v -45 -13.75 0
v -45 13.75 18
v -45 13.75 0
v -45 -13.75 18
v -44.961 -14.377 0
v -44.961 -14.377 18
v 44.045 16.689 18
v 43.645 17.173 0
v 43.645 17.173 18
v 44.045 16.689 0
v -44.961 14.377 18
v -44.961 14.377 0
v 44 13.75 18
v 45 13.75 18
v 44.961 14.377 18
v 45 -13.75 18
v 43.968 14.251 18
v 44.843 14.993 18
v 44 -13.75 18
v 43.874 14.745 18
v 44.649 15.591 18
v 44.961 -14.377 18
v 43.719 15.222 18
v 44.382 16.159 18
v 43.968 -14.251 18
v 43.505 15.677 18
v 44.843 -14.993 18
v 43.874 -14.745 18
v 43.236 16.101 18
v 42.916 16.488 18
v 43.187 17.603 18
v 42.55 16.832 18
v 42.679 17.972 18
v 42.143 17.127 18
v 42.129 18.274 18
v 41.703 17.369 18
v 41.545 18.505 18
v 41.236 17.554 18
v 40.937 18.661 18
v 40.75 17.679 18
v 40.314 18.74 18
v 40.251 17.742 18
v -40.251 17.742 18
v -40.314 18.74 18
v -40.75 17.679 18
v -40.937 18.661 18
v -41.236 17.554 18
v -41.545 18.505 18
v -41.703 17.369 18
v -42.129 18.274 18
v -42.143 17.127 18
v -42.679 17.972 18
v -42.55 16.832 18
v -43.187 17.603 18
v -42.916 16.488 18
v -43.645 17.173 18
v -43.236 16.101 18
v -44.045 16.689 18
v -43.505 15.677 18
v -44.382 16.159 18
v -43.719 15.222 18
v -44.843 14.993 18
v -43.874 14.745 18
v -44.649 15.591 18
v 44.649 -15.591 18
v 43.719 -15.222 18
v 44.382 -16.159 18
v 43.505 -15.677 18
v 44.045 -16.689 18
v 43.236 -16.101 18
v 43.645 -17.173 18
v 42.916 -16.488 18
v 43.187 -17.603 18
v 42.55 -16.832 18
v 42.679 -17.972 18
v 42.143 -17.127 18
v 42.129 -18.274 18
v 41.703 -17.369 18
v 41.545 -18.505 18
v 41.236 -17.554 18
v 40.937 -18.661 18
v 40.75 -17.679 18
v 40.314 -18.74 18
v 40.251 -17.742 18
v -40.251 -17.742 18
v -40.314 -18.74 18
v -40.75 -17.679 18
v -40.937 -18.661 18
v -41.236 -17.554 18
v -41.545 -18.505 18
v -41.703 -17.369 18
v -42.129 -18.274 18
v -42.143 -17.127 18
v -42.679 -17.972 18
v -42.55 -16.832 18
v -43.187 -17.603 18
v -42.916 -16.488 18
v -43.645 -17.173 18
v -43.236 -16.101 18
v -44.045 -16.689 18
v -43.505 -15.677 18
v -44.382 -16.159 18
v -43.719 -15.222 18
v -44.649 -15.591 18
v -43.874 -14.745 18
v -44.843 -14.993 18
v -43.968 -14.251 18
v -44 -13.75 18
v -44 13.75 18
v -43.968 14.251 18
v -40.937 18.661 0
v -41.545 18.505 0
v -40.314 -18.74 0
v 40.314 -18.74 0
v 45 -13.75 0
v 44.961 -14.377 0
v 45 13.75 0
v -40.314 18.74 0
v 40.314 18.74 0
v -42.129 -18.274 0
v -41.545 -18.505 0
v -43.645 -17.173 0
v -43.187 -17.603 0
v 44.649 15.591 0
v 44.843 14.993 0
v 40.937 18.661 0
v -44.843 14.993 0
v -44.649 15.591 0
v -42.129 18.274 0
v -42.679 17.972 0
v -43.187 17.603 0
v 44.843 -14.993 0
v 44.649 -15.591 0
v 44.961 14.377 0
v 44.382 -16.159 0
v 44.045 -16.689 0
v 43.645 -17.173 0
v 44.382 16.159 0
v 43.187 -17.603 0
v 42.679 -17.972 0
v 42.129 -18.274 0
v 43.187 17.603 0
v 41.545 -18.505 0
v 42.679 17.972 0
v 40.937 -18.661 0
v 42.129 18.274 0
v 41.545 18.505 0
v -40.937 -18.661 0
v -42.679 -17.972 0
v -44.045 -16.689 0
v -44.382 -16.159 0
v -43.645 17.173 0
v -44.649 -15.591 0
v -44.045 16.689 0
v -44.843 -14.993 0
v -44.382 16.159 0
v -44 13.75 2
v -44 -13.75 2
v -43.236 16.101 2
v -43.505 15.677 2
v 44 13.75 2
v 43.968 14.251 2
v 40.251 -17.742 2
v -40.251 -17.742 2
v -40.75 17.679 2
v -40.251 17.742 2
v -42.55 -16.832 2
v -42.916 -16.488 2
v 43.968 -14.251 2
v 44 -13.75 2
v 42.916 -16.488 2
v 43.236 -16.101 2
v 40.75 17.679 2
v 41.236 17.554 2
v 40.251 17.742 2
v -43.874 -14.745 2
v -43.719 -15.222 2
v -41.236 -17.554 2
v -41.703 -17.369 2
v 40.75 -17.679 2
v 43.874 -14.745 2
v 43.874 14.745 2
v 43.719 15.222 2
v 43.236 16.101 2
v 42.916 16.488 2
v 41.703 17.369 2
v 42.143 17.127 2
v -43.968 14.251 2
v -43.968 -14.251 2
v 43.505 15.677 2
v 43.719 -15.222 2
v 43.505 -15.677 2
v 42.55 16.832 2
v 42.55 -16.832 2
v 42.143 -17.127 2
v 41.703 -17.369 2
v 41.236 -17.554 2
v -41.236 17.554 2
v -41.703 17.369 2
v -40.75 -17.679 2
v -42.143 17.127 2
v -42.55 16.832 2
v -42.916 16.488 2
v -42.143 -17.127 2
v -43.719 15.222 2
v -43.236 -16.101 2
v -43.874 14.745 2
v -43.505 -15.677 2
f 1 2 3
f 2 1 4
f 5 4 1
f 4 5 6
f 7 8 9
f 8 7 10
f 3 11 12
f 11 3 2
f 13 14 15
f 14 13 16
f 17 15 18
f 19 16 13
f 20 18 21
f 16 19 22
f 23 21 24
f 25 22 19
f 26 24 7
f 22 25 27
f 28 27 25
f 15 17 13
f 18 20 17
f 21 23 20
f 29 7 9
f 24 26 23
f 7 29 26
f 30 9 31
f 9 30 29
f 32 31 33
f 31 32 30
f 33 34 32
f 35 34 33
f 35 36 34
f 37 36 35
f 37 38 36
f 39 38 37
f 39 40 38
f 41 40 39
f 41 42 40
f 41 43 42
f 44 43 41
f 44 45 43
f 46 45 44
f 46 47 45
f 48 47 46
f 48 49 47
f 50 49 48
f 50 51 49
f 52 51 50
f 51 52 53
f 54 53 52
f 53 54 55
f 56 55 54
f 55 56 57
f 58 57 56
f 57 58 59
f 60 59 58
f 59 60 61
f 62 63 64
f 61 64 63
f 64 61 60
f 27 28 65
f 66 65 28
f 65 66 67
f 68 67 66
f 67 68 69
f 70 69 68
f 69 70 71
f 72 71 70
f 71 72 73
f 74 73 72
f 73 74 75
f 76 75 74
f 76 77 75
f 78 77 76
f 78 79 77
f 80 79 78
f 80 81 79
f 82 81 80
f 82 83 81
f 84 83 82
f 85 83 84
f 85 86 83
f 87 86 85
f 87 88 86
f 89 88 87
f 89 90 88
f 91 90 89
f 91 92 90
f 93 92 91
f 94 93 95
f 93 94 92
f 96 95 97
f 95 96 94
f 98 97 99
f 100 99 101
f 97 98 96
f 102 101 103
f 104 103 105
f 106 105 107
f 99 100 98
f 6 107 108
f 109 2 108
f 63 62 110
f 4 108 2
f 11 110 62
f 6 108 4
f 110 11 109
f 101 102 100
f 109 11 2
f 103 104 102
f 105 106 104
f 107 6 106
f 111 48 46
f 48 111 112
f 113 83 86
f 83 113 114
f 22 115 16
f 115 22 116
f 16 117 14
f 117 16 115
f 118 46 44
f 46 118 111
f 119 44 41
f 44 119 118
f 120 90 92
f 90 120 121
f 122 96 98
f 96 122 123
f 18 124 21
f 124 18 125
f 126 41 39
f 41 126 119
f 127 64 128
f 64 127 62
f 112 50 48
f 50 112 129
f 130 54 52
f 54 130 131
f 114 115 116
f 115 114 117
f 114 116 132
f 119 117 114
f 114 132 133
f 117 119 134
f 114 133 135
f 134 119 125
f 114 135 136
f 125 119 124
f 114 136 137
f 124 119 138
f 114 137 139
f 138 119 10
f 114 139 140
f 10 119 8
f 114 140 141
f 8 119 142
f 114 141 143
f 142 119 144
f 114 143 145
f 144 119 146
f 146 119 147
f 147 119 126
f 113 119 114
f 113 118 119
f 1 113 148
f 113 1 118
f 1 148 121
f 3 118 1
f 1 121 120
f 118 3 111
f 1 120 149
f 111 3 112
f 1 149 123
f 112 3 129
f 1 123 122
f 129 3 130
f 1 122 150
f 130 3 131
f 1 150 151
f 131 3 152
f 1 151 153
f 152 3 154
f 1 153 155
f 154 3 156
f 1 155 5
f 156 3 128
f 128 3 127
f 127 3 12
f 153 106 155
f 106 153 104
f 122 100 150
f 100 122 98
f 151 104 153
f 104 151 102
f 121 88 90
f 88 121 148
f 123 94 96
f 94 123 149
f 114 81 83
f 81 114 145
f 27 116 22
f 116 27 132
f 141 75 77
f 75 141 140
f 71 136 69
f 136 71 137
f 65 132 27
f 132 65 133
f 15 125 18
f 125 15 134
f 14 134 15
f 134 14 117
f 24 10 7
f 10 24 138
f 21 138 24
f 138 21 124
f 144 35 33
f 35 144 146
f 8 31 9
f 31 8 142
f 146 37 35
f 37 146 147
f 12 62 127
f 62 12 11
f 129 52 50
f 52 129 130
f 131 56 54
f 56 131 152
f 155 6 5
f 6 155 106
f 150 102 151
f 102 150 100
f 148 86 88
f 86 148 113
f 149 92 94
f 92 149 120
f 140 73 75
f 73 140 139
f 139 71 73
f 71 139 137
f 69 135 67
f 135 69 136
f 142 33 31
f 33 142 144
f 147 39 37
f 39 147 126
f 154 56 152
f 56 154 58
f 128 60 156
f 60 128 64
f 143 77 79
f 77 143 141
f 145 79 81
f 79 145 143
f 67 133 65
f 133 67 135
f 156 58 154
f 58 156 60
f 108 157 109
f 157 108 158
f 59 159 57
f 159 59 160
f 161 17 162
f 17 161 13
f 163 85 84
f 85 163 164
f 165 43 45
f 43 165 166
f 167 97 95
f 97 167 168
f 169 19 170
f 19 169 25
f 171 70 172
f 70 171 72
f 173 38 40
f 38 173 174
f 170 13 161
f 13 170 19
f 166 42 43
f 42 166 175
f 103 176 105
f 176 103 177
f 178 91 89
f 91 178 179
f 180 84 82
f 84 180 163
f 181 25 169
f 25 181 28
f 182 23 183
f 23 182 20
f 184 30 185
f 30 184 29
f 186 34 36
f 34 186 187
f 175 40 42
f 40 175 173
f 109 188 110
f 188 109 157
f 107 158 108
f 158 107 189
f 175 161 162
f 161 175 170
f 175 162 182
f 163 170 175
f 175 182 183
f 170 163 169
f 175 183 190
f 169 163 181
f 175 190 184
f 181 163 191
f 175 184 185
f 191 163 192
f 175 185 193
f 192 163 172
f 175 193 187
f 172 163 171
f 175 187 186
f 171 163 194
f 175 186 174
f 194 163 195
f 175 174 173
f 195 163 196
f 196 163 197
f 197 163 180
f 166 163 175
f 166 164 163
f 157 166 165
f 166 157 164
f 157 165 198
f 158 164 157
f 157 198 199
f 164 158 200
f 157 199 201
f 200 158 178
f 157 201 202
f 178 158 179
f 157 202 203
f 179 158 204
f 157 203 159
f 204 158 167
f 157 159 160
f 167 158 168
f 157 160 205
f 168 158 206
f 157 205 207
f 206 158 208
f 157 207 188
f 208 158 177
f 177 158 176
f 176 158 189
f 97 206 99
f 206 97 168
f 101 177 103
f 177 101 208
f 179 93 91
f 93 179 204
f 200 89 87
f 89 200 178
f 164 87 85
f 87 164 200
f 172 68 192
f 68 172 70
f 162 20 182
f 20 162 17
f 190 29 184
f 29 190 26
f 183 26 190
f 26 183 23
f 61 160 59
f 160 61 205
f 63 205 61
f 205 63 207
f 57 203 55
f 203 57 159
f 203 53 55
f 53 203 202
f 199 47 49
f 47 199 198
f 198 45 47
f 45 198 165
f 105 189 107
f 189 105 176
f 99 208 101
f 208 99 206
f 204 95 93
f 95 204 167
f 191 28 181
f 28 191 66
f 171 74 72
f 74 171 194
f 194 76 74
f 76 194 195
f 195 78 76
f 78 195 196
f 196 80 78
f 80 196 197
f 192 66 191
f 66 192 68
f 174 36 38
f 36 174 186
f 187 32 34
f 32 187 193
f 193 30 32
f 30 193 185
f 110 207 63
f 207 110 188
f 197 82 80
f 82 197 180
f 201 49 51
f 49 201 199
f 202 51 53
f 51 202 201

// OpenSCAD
$fn = 50;


difference() {
	union() {
		hull() {
			translate(v = [-40.0000000000, 13.7500000000, 0]) {
				cylinder(h = 18, r = 5);
			}
			translate(v = [40.0000000000, 13.7500000000, 0]) {
				cylinder(h = 18, r = 5);
			}
			translate(v = [-40.0000000000, -13.7500000000, 0]) {
				cylinder(h = 18, r = 5);
			}
			translate(v = [40.0000000000, -13.7500000000, 0]) {
				cylinder(h = 18, r = 5);
			}
		}
	}
	union() {
		translate(v = [0, 0, 2]) {
			hull() {
				translate(v = [-40.0000000000, 13.7500000000, 0]) {
					cylinder(h = 16, r = 4);
				}
				translate(v = [40.0000000000, 13.7500000000, 0]) {
					cylinder(h = 16, r = 4);
				}
				translate(v = [-40.0000000000, -13.7500000000, 0]) {
					cylinder(h = 16, r = 4);
				}
				translate(v = [40.0000000000, -13.7500000000, 0]) {
					cylinder(h = 16, r = 4);
				}
			}
		}
	}
}
